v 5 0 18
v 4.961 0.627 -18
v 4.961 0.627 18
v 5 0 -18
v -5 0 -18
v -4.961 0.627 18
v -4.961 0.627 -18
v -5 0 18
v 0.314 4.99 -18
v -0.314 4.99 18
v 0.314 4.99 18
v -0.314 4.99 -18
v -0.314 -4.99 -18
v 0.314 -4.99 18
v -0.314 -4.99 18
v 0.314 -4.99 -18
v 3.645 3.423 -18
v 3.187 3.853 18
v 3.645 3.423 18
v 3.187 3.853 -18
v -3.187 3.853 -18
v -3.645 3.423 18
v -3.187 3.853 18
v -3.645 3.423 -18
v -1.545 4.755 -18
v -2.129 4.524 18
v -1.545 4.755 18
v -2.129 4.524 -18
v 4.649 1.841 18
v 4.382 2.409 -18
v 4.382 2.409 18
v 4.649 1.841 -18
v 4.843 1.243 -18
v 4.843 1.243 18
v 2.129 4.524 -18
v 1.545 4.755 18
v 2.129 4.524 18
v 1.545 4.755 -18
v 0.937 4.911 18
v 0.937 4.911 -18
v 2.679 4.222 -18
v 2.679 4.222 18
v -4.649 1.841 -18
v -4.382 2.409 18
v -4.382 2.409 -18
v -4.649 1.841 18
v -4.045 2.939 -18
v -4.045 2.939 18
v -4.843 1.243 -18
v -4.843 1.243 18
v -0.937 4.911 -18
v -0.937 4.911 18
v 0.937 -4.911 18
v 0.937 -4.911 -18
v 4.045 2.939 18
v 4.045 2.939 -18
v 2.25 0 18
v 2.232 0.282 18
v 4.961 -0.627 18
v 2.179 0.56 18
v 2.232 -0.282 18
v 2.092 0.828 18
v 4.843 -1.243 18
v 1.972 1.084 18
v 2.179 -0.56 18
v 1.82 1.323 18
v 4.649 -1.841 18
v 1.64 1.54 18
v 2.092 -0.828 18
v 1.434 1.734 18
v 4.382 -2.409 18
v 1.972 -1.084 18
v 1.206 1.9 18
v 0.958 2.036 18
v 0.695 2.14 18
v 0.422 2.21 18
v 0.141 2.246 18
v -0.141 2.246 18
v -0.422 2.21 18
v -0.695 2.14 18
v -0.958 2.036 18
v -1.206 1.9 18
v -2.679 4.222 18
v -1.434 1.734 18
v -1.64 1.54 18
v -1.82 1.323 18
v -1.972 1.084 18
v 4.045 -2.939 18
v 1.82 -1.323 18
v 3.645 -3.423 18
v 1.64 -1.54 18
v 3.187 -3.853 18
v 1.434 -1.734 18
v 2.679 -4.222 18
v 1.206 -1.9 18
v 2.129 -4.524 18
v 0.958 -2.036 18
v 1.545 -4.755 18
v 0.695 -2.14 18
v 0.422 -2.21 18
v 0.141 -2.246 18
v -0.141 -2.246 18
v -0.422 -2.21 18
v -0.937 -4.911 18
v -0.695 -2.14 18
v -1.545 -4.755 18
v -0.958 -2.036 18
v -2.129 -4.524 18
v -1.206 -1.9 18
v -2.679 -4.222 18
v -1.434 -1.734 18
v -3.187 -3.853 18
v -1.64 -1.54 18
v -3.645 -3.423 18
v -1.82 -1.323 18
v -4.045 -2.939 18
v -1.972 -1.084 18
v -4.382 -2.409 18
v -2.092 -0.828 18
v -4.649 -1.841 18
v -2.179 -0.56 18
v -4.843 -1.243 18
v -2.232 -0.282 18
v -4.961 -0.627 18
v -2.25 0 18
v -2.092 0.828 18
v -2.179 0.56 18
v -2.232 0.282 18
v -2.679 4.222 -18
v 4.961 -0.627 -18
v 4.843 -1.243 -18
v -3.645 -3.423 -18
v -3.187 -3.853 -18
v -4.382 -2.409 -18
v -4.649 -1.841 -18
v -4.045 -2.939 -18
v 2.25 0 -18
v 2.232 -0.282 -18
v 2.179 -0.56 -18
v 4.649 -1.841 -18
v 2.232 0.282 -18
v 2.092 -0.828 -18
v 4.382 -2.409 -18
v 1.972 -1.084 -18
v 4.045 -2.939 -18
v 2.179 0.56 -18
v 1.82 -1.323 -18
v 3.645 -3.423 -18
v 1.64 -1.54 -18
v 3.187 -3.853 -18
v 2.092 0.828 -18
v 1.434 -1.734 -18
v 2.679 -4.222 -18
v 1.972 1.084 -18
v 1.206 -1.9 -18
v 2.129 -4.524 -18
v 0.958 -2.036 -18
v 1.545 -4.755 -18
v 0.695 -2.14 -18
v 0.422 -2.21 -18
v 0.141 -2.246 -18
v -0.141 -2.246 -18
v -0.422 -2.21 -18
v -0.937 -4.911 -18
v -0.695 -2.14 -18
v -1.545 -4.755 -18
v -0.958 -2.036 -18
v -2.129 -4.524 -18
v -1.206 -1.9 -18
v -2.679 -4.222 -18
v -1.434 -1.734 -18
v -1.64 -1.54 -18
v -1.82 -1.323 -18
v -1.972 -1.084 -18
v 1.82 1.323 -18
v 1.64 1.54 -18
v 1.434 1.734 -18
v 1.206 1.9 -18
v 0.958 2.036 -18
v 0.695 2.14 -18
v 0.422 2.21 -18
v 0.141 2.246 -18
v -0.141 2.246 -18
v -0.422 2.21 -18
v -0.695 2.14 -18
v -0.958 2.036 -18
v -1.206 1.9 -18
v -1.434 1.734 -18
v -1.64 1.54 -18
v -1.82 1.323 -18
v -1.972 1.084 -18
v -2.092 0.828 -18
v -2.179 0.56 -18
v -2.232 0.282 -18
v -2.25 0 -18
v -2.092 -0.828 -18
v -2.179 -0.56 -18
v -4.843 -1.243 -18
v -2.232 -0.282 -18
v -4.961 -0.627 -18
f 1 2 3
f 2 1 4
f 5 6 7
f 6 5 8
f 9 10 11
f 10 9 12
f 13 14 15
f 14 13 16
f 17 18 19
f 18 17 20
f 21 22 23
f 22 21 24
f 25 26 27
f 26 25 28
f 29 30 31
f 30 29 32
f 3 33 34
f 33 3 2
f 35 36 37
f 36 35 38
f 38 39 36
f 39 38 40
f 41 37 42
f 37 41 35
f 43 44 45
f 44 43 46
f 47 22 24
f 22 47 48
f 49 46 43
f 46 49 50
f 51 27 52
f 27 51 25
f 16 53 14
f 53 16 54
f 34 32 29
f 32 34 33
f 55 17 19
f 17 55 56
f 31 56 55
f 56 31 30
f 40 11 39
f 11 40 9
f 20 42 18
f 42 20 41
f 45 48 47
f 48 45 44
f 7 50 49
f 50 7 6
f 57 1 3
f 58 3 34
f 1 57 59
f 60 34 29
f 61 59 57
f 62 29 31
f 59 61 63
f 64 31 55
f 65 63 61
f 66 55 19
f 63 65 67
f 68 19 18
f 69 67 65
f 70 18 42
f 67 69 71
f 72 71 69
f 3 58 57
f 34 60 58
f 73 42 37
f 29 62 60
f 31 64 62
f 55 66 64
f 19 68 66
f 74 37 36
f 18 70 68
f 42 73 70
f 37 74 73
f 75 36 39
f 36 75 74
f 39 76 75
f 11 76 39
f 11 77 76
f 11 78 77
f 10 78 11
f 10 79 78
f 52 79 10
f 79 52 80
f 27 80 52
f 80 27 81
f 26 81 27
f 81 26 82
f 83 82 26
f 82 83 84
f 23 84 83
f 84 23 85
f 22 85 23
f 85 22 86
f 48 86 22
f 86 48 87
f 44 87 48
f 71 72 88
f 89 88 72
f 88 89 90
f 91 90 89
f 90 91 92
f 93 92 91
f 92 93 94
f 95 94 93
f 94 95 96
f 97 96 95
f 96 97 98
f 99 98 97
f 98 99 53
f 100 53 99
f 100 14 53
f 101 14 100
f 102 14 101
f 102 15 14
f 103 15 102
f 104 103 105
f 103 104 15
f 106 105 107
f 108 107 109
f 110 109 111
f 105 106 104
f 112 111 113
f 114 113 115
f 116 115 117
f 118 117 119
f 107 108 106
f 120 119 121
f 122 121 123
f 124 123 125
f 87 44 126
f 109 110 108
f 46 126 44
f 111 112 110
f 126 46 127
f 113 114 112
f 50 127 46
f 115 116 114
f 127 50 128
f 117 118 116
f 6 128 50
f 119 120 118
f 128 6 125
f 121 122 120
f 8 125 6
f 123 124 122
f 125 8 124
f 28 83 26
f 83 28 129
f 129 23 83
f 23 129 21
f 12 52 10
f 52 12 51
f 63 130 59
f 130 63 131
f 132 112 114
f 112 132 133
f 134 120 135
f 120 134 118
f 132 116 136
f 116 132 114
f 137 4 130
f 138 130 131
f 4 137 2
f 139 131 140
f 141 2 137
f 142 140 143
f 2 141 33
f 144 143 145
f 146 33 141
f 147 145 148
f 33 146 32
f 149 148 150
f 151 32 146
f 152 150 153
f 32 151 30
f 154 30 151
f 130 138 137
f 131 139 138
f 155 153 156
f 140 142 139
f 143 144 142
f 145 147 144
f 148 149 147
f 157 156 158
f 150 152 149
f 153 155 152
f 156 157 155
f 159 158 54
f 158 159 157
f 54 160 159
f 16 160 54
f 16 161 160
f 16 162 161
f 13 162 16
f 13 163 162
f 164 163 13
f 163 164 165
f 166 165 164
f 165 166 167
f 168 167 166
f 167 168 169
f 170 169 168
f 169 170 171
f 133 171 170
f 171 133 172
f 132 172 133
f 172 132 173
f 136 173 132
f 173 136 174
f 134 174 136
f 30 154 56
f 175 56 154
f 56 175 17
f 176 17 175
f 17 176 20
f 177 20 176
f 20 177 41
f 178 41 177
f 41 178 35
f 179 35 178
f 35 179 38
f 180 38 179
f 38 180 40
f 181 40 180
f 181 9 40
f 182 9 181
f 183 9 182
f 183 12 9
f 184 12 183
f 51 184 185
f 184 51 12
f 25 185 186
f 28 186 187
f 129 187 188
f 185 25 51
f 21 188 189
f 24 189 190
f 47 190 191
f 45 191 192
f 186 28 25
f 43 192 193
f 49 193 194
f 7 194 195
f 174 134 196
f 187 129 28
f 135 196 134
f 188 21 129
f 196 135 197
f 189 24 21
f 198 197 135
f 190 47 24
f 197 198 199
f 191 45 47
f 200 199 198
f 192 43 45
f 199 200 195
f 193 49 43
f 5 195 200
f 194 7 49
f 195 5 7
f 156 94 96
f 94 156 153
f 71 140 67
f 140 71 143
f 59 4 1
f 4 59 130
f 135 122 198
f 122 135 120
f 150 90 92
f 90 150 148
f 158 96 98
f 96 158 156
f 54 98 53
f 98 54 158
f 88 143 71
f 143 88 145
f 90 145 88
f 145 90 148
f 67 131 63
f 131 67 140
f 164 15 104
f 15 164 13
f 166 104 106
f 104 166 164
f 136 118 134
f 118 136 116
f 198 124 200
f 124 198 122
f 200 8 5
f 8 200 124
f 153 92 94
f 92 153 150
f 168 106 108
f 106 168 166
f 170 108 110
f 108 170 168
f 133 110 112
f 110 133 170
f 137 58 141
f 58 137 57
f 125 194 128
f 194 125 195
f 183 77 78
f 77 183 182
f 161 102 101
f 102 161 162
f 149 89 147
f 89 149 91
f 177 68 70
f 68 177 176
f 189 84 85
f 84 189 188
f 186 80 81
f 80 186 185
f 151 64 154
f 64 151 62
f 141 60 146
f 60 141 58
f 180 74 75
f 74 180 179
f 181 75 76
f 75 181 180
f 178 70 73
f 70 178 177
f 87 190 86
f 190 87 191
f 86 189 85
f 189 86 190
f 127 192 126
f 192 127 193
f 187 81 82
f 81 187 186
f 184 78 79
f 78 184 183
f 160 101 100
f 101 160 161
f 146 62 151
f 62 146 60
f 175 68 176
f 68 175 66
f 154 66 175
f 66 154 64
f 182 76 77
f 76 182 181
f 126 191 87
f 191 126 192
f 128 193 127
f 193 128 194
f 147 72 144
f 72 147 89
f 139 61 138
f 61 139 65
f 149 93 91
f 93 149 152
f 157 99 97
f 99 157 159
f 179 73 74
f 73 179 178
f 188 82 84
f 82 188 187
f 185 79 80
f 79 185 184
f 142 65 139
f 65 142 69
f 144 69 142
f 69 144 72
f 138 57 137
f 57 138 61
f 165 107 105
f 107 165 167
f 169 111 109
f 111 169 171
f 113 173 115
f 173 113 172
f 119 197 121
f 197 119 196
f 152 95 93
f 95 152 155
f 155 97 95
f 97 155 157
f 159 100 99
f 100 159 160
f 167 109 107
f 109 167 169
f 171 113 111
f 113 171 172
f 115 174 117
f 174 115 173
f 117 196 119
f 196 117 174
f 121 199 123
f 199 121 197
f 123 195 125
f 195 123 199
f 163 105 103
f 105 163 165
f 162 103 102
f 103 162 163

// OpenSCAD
$fn = 50;


difference() {
	union() {
		translate(v = [0, 0, -18.0000000000]) {
			cylinder(h = 36, r = 5.0000000000);
		}
	}
	union() {
		translate(v = [0, 0, -100.0000000000]) {
			cylinder(h = 200, r = 2.2500000000);
		}
	}
}
